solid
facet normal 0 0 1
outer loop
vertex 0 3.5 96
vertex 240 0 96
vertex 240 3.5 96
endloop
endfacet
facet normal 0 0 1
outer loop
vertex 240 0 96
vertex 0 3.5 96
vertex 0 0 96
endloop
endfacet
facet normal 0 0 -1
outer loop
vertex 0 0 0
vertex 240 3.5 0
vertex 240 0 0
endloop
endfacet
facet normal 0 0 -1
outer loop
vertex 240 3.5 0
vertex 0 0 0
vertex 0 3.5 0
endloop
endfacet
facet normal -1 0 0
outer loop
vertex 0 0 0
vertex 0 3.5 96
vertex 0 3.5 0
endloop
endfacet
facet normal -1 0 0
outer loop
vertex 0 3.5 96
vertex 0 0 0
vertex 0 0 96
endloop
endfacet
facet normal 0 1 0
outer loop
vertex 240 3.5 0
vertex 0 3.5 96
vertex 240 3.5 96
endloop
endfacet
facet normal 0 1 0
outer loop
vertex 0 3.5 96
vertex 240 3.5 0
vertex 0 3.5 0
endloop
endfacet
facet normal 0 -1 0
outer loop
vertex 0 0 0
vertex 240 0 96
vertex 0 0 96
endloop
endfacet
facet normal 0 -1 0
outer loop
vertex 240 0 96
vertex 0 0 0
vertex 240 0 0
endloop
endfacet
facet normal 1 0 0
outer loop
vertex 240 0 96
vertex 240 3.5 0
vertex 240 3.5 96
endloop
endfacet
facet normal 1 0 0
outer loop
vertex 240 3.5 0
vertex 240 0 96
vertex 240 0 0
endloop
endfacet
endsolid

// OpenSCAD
$fn = 24;

translate(v = [0, 0, 0]) {
	cube(size = [2, 3.5000000000, 96]);
}
translate(v = [2, 0, 0]) {
	cube(size = [2, 3.5000000000, 96]);
}
translate(v = [4, 0, 0]) {
	cube(size = [2, 3.5000000000, 96]);
}
translate(v = [6, 0, 0]) {
	cube(size = [2, 3.5000000000, 96]);
}
translate(v = [8, 0, 0]) {
	cube(size = [2, 3.5000000000, 96]);
}
translate(v = [10, 0, 0]) {
	cube(size = [2, 3.5000000000, 96]);
}
translate(v = [12, 0, 0]) {
	cube(size = [2, 3.5000000000, 96]);
}
translate(v = [14, 0, 0]) {
	cube(size = [2, 3.5000000000, 96]);
}
translate(v = [16, 0, 0]) {
	cube(size = [2, 3.5000000000, 96]);
}
translate(v = [18, 0, 0]) {
	cube(size = [2, 3.5000000000, 96]);
}
translate(v = [20, 0, 0]) {
	cube(size = [2, 3.5000000000, 96]);
}
translate(v = [22, 0, 0]) {
	cube(size = [2, 3.5000000000, 96]);
}
translate(v = [24, 0, 0]) {
	cube(size = [2, 3.5000000000, 96]);
}
translate(v = [26, 0, 0]) {
	cube(size = [2, 3.5000000000, 96]);
}
translate(v = [28, 0, 0]) {
	cube(size = [2, 3.5000000000, 96]);
}
translate(v = [30, 0, 0]) {
	cube(size = [2, 3.5000000000, 96]);
}
translate(v = [32, 0, 0]) {
	cube(size = [2, 3.5000000000, 96]);
}
translate(v = [34, 0, 0]) {
	cube(size = [2, 3.5000000000, 96]);
}
translate(v = [36, 0, 0]) {
	cube(size = [2, 3.5000000000, 96]);
}
translate(v = [38, 0, 0]) {
	cube(size = [2, 3.5000000000, 96]);
}
translate(v = [40, 0, 0]) {
	cube(size = [2, 3.5000000000, 96]);
}
translate(v = [42, 0, 0]) {
	cube(size = [2, 3.5000000000, 96]);
}
translate(v = [44, 0, 0]) {
	cube(size = [2, 3.5000000000, 96]);
}
translate(v = [46, 0, 0]) {
	cube(size = [2, 3.5000000000, 96]);
}
translate(v = [48, 0, 0]) {
	cube(size = [2, 3.5000000000, 96]);
}
translate(v = [50, 0, 0]) {
	cube(size = [2, 3.5000000000, 96]);
}
translate(v = [52, 0, 0]) {
	cube(size = [2, 3.5000000000, 96]);
}
translate(v = [54, 0, 0]) {
	cube(size = [2, 3.5000000000, 96]);
}
translate(v = [56, 0, 0]) {
	cube(size = [2, 3.5000000000, 96]);
}
translate(v = [58, 0, 0]) {
	cube(size = [2, 3.5000000000, 96]);
}
translate(v = [60, 0, 0]) {
	cube(size = [2, 3.5000000000, 96]);
}
translate(v = [62, 0, 0]) {
	cube(size = [2, 3.5000000000, 96]);
}
translate(v = [64, 0, 0]) {
	cube(size = [2, 3.5000000000, 96]);
}
translate(v = [66, 0, 0]) {
	cube(size = [2, 3.5000000000, 96]);
}
translate(v = [68, 0, 0]) {
	cube(size = [2, 3.5000000000, 96]);
}
translate(v = [70, 0, 0]) {
	cube(size = [2, 3.5000000000, 96]);
}
translate(v = [72, 0, 0]) {
	cube(size = [2, 3.5000000000, 96]);
}
translate(v = [74, 0, 0]) {
	cube(size = [2, 3.5000000000, 96]);
}
translate(v = [76, 0, 0]) {
	cube(size = [2, 3.5000000000, 96]);
}
translate(v = [78, 0, 0]) {
	cube(size = [2, 3.5000000000, 96]);
}
translate(v = [80, 0, 0]) {
	cube(size = [2, 3.5000000000, 96]);
}
translate(v = [82, 0, 0]) {
	cube(size = [2, 3.5000000000, 96]);
}
translate(v = [84, 0, 0]) {
	cube(size = [2, 3.5000000000, 96]);
}
translate(v = [86, 0, 0]) {
	cube(size = [2, 3.5000000000, 96]);
}
translate(v = [88, 0, 0]) {
	cube(size = [2, 3.5000000000, 96]);
}
translate(v = [90, 0, 0]) {
	cube(size = [2, 3.5000000000, 96]);
}
translate(v = [92, 0, 0]) {
	cube(size = [2, 3.5000000000, 96]);
}
translate(v = [94, 0, 0]) {
	cube(size = [2, 3.5000000000, 96]);
}
translate(v = [96, 0, 0]) {
	cube(size = [2, 3.5000000000, 96]);
}
translate(v = [98, 0, 0]) {
	cube(size = [2, 3.5000000000, 96]);
}
translate(v = [100, 0, 0]) {
	cube(size = [2, 3.5000000000, 96]);
}
translate(v = [102, 0, 0]) {
	cube(size = [2, 3.5000000000, 96]);
}
translate(v = [104, 0, 0]) {
	cube(size = [2, 3.5000000000, 96]);
}
translate(v = [106, 0, 0]) {
	cube(size = [2, 3.5000000000, 96]);
}
translate(v = [108, 0, 0]) {
	cube(size = [2, 3.5000000000, 96]);
}
translate(v = [110, 0, 0]) {
	cube(size = [2, 3.5000000000, 96]);
}
translate(v = [112, 0, 0]) {
	cube(size = [2, 3.5000000000, 96]);
}
translate(v = [114, 0, 0]) {
	cube(size = [2, 3.5000000000, 96]);
}
translate(v = [116, 0, 0]) {
	cube(size = [2, 3.5000000000, 96]);
}
translate(v = [118, 0, 0]) {
	cube(size = [2, 3.5000000000, 96]);
}
translate(v = [120, 0, 0]) {
	cube(size = [2, 3.5000000000, 96]);
}
translate(v = [122, 0, 0]) {
	cube(size = [2, 3.5000000000, 96]);
}
translate(v = [124, 0, 0]) {
	cube(size = [2, 3.5000000000, 96]);
}
translate(v = [126, 0, 0]) {
	cube(size = [2, 3.5000000000, 96]);
}
translate(v = [128, 0, 0]) {
	cube(size = [2, 3.5000000000, 96]);
}
translate(v = [130, 0, 0]) {
	cube(size = [2, 3.5000000000, 96]);
}
translate(v = [132, 0, 0]) {
	cube(size = [2, 3.5000000000, 96]);
}
translate(v = [134, 0, 0]) {
	cube(size = [2, 3.5000000000, 96]);
}
translate(v = [136, 0, 0]) {
	cube(size = [2, 3.5000000000, 96]);
}
translate(v = [138, 0, 0]) {
	cube(size = [2, 3.5000000000, 96]);
}
translate(v = [140, 0, 0]) {
	cube(size = [2, 3.5000000000, 96]);
}
translate(v = [142, 0, 0]) {
	cube(size = [2, 3.5000000000, 96]);
}
translate(v = [144, 0, 0]) {
	cube(size = [2, 3.5000000000, 96]);
}
translate(v = [146, 0, 0]) {
	cube(size = [2, 3.5000000000, 96]);
}
translate(v = [148, 0, 0]) {
	cube(size = [2, 3.5000000000, 96]);
}
translate(v = [150, 0, 0]) {
	cube(size = [2, 3.5000000000, 96]);
}
translate(v = [152, 0, 0]) {
	cube(size = [2, 3.5000000000, 96]);
}
translate(v = [154, 0, 0]) {
	cube(size = [2, 3.5000000000, 96]);
}
translate(v = [156, 0, 0]) {
	cube(size = [2, 3.5000000000, 96]);
}
translate(v = [158, 0, 0]) {
	cube(size = [2, 3.5000000000, 96]);
}
translate(v = [160, 0, 0]) {
	cube(size = [2, 3.5000000000, 96]);
}
translate(v = [162, 0, 0]) {
	cube(size = [2, 3.5000000000, 96]);
}
translate(v = [164, 0, 0]) {
	cube(size = [2, 3.5000000000, 96]);
}
translate(v = [166, 0, 0]) {
	cube(size = [2, 3.5000000000, 96]);
}
translate(v = [168, 0, 0]) {
	cube(size = [2, 3.5000000000, 96]);
}
translate(v = [170, 0, 0]) {
	cube(size = [2, 3.5000000000, 96]);
}
translate(v = [172, 0, 0]) {
	cube(size = [2, 3.5000000000, 96]);
}
translate(v = [174, 0, 0]) {
	cube(size = [2, 3.5000000000, 96]);
}
translate(v = [176, 0, 0]) {
	cube(size = [2, 3.5000000000, 96]);
}
translate(v = [178, 0, 0]) {
	cube(size = [2, 3.5000000000, 96]);
}
translate(v = [180, 0, 0]) {
	cube(size = [2, 3.5000000000, 96]);
}
translate(v = [182, 0, 0]) {
	cube(size = [2, 3.5000000000, 96]);
}
translate(v = [184, 0, 0]) {
	cube(size = [2, 3.5000000000, 96]);
}
translate(v = [186, 0, 0]) {
	cube(size = [2, 3.5000000000, 96]);
}
translate(v = [188, 0, 0]) {
	cube(size = [2, 3.5000000000, 96]);
}
translate(v = [190, 0, 0]) {
	cube(size = [2, 3.5000000000, 96]);
}
translate(v = [192, 0, 0]) {
	cube(size = [2, 3.5000000000, 96]);
}
translate(v = [194, 0, 0]) {
	cube(size = [2, 3.5000000000, 96]);
}
translate(v = [196, 0, 0]) {
	cube(size = [2, 3.5000000000, 96]);
}
translate(v = [198, 0, 0]) {
	cube(size = [2, 3.5000000000, 96]);
}
translate(v = [200, 0, 0]) {
	cube(size = [2, 3.5000000000, 96]);
}
translate(v = [202, 0, 0]) {
	cube(size = [2, 3.5000000000, 96]);
}
translate(v = [204, 0, 0]) {
	cube(size = [2, 3.5000000000, 96]);
}
translate(v = [206, 0, 0]) {
	cube(size = [2, 3.5000000000, 96]);
}
translate(v = [208, 0, 0]) {
	cube(size = [2, 3.5000000000, 96]);
}
translate(v = [210, 0, 0]) {
	cube(size = [2, 3.5000000000, 96]);
}
translate(v = [212, 0, 0]) {
	cube(size = [2, 3.5000000000, 96]);
}
translate(v = [214, 0, 0]) {
	cube(size = [2, 3.5000000000, 96]);
}
translate(v = [216, 0, 0]) {
	cube(size = [2, 3.5000000000, 96]);
}
translate(v = [218, 0, 0]) {
	cube(size = [2, 3.5000000000, 96]);
}
translate(v = [220, 0, 0]) {
	cube(size = [2, 3.5000000000, 96]);
}
translate(v = [222, 0, 0]) {
	cube(size = [2, 3.5000000000, 96]);
}
translate(v = [224, 0, 0]) {
	cube(size = [2, 3.5000000000, 96]);
}
translate(v = [226, 0, 0]) {
	cube(size = [2, 3.5000000000, 96]);
}
translate(v = [228, 0, 0]) {
	cube(size = [2, 3.5000000000, 96]);
}
translate(v = [230, 0, 0]) {
	cube(size = [2, 3.5000000000, 96]);
}
translate(v = [232, 0, 0]) {
	cube(size = [2, 3.5000000000, 96]);
}
translate(v = [234, 0, 0]) {
	cube(size = [2, 3.5000000000, 96]);
}
translate(v = [236, 0, 0]) {
	cube(size = [2, 3.5000000000, 96]);
}
translate(v = [238, 0, 0]) {
	cube(size = [2, 3.5000000000, 96]);
}
